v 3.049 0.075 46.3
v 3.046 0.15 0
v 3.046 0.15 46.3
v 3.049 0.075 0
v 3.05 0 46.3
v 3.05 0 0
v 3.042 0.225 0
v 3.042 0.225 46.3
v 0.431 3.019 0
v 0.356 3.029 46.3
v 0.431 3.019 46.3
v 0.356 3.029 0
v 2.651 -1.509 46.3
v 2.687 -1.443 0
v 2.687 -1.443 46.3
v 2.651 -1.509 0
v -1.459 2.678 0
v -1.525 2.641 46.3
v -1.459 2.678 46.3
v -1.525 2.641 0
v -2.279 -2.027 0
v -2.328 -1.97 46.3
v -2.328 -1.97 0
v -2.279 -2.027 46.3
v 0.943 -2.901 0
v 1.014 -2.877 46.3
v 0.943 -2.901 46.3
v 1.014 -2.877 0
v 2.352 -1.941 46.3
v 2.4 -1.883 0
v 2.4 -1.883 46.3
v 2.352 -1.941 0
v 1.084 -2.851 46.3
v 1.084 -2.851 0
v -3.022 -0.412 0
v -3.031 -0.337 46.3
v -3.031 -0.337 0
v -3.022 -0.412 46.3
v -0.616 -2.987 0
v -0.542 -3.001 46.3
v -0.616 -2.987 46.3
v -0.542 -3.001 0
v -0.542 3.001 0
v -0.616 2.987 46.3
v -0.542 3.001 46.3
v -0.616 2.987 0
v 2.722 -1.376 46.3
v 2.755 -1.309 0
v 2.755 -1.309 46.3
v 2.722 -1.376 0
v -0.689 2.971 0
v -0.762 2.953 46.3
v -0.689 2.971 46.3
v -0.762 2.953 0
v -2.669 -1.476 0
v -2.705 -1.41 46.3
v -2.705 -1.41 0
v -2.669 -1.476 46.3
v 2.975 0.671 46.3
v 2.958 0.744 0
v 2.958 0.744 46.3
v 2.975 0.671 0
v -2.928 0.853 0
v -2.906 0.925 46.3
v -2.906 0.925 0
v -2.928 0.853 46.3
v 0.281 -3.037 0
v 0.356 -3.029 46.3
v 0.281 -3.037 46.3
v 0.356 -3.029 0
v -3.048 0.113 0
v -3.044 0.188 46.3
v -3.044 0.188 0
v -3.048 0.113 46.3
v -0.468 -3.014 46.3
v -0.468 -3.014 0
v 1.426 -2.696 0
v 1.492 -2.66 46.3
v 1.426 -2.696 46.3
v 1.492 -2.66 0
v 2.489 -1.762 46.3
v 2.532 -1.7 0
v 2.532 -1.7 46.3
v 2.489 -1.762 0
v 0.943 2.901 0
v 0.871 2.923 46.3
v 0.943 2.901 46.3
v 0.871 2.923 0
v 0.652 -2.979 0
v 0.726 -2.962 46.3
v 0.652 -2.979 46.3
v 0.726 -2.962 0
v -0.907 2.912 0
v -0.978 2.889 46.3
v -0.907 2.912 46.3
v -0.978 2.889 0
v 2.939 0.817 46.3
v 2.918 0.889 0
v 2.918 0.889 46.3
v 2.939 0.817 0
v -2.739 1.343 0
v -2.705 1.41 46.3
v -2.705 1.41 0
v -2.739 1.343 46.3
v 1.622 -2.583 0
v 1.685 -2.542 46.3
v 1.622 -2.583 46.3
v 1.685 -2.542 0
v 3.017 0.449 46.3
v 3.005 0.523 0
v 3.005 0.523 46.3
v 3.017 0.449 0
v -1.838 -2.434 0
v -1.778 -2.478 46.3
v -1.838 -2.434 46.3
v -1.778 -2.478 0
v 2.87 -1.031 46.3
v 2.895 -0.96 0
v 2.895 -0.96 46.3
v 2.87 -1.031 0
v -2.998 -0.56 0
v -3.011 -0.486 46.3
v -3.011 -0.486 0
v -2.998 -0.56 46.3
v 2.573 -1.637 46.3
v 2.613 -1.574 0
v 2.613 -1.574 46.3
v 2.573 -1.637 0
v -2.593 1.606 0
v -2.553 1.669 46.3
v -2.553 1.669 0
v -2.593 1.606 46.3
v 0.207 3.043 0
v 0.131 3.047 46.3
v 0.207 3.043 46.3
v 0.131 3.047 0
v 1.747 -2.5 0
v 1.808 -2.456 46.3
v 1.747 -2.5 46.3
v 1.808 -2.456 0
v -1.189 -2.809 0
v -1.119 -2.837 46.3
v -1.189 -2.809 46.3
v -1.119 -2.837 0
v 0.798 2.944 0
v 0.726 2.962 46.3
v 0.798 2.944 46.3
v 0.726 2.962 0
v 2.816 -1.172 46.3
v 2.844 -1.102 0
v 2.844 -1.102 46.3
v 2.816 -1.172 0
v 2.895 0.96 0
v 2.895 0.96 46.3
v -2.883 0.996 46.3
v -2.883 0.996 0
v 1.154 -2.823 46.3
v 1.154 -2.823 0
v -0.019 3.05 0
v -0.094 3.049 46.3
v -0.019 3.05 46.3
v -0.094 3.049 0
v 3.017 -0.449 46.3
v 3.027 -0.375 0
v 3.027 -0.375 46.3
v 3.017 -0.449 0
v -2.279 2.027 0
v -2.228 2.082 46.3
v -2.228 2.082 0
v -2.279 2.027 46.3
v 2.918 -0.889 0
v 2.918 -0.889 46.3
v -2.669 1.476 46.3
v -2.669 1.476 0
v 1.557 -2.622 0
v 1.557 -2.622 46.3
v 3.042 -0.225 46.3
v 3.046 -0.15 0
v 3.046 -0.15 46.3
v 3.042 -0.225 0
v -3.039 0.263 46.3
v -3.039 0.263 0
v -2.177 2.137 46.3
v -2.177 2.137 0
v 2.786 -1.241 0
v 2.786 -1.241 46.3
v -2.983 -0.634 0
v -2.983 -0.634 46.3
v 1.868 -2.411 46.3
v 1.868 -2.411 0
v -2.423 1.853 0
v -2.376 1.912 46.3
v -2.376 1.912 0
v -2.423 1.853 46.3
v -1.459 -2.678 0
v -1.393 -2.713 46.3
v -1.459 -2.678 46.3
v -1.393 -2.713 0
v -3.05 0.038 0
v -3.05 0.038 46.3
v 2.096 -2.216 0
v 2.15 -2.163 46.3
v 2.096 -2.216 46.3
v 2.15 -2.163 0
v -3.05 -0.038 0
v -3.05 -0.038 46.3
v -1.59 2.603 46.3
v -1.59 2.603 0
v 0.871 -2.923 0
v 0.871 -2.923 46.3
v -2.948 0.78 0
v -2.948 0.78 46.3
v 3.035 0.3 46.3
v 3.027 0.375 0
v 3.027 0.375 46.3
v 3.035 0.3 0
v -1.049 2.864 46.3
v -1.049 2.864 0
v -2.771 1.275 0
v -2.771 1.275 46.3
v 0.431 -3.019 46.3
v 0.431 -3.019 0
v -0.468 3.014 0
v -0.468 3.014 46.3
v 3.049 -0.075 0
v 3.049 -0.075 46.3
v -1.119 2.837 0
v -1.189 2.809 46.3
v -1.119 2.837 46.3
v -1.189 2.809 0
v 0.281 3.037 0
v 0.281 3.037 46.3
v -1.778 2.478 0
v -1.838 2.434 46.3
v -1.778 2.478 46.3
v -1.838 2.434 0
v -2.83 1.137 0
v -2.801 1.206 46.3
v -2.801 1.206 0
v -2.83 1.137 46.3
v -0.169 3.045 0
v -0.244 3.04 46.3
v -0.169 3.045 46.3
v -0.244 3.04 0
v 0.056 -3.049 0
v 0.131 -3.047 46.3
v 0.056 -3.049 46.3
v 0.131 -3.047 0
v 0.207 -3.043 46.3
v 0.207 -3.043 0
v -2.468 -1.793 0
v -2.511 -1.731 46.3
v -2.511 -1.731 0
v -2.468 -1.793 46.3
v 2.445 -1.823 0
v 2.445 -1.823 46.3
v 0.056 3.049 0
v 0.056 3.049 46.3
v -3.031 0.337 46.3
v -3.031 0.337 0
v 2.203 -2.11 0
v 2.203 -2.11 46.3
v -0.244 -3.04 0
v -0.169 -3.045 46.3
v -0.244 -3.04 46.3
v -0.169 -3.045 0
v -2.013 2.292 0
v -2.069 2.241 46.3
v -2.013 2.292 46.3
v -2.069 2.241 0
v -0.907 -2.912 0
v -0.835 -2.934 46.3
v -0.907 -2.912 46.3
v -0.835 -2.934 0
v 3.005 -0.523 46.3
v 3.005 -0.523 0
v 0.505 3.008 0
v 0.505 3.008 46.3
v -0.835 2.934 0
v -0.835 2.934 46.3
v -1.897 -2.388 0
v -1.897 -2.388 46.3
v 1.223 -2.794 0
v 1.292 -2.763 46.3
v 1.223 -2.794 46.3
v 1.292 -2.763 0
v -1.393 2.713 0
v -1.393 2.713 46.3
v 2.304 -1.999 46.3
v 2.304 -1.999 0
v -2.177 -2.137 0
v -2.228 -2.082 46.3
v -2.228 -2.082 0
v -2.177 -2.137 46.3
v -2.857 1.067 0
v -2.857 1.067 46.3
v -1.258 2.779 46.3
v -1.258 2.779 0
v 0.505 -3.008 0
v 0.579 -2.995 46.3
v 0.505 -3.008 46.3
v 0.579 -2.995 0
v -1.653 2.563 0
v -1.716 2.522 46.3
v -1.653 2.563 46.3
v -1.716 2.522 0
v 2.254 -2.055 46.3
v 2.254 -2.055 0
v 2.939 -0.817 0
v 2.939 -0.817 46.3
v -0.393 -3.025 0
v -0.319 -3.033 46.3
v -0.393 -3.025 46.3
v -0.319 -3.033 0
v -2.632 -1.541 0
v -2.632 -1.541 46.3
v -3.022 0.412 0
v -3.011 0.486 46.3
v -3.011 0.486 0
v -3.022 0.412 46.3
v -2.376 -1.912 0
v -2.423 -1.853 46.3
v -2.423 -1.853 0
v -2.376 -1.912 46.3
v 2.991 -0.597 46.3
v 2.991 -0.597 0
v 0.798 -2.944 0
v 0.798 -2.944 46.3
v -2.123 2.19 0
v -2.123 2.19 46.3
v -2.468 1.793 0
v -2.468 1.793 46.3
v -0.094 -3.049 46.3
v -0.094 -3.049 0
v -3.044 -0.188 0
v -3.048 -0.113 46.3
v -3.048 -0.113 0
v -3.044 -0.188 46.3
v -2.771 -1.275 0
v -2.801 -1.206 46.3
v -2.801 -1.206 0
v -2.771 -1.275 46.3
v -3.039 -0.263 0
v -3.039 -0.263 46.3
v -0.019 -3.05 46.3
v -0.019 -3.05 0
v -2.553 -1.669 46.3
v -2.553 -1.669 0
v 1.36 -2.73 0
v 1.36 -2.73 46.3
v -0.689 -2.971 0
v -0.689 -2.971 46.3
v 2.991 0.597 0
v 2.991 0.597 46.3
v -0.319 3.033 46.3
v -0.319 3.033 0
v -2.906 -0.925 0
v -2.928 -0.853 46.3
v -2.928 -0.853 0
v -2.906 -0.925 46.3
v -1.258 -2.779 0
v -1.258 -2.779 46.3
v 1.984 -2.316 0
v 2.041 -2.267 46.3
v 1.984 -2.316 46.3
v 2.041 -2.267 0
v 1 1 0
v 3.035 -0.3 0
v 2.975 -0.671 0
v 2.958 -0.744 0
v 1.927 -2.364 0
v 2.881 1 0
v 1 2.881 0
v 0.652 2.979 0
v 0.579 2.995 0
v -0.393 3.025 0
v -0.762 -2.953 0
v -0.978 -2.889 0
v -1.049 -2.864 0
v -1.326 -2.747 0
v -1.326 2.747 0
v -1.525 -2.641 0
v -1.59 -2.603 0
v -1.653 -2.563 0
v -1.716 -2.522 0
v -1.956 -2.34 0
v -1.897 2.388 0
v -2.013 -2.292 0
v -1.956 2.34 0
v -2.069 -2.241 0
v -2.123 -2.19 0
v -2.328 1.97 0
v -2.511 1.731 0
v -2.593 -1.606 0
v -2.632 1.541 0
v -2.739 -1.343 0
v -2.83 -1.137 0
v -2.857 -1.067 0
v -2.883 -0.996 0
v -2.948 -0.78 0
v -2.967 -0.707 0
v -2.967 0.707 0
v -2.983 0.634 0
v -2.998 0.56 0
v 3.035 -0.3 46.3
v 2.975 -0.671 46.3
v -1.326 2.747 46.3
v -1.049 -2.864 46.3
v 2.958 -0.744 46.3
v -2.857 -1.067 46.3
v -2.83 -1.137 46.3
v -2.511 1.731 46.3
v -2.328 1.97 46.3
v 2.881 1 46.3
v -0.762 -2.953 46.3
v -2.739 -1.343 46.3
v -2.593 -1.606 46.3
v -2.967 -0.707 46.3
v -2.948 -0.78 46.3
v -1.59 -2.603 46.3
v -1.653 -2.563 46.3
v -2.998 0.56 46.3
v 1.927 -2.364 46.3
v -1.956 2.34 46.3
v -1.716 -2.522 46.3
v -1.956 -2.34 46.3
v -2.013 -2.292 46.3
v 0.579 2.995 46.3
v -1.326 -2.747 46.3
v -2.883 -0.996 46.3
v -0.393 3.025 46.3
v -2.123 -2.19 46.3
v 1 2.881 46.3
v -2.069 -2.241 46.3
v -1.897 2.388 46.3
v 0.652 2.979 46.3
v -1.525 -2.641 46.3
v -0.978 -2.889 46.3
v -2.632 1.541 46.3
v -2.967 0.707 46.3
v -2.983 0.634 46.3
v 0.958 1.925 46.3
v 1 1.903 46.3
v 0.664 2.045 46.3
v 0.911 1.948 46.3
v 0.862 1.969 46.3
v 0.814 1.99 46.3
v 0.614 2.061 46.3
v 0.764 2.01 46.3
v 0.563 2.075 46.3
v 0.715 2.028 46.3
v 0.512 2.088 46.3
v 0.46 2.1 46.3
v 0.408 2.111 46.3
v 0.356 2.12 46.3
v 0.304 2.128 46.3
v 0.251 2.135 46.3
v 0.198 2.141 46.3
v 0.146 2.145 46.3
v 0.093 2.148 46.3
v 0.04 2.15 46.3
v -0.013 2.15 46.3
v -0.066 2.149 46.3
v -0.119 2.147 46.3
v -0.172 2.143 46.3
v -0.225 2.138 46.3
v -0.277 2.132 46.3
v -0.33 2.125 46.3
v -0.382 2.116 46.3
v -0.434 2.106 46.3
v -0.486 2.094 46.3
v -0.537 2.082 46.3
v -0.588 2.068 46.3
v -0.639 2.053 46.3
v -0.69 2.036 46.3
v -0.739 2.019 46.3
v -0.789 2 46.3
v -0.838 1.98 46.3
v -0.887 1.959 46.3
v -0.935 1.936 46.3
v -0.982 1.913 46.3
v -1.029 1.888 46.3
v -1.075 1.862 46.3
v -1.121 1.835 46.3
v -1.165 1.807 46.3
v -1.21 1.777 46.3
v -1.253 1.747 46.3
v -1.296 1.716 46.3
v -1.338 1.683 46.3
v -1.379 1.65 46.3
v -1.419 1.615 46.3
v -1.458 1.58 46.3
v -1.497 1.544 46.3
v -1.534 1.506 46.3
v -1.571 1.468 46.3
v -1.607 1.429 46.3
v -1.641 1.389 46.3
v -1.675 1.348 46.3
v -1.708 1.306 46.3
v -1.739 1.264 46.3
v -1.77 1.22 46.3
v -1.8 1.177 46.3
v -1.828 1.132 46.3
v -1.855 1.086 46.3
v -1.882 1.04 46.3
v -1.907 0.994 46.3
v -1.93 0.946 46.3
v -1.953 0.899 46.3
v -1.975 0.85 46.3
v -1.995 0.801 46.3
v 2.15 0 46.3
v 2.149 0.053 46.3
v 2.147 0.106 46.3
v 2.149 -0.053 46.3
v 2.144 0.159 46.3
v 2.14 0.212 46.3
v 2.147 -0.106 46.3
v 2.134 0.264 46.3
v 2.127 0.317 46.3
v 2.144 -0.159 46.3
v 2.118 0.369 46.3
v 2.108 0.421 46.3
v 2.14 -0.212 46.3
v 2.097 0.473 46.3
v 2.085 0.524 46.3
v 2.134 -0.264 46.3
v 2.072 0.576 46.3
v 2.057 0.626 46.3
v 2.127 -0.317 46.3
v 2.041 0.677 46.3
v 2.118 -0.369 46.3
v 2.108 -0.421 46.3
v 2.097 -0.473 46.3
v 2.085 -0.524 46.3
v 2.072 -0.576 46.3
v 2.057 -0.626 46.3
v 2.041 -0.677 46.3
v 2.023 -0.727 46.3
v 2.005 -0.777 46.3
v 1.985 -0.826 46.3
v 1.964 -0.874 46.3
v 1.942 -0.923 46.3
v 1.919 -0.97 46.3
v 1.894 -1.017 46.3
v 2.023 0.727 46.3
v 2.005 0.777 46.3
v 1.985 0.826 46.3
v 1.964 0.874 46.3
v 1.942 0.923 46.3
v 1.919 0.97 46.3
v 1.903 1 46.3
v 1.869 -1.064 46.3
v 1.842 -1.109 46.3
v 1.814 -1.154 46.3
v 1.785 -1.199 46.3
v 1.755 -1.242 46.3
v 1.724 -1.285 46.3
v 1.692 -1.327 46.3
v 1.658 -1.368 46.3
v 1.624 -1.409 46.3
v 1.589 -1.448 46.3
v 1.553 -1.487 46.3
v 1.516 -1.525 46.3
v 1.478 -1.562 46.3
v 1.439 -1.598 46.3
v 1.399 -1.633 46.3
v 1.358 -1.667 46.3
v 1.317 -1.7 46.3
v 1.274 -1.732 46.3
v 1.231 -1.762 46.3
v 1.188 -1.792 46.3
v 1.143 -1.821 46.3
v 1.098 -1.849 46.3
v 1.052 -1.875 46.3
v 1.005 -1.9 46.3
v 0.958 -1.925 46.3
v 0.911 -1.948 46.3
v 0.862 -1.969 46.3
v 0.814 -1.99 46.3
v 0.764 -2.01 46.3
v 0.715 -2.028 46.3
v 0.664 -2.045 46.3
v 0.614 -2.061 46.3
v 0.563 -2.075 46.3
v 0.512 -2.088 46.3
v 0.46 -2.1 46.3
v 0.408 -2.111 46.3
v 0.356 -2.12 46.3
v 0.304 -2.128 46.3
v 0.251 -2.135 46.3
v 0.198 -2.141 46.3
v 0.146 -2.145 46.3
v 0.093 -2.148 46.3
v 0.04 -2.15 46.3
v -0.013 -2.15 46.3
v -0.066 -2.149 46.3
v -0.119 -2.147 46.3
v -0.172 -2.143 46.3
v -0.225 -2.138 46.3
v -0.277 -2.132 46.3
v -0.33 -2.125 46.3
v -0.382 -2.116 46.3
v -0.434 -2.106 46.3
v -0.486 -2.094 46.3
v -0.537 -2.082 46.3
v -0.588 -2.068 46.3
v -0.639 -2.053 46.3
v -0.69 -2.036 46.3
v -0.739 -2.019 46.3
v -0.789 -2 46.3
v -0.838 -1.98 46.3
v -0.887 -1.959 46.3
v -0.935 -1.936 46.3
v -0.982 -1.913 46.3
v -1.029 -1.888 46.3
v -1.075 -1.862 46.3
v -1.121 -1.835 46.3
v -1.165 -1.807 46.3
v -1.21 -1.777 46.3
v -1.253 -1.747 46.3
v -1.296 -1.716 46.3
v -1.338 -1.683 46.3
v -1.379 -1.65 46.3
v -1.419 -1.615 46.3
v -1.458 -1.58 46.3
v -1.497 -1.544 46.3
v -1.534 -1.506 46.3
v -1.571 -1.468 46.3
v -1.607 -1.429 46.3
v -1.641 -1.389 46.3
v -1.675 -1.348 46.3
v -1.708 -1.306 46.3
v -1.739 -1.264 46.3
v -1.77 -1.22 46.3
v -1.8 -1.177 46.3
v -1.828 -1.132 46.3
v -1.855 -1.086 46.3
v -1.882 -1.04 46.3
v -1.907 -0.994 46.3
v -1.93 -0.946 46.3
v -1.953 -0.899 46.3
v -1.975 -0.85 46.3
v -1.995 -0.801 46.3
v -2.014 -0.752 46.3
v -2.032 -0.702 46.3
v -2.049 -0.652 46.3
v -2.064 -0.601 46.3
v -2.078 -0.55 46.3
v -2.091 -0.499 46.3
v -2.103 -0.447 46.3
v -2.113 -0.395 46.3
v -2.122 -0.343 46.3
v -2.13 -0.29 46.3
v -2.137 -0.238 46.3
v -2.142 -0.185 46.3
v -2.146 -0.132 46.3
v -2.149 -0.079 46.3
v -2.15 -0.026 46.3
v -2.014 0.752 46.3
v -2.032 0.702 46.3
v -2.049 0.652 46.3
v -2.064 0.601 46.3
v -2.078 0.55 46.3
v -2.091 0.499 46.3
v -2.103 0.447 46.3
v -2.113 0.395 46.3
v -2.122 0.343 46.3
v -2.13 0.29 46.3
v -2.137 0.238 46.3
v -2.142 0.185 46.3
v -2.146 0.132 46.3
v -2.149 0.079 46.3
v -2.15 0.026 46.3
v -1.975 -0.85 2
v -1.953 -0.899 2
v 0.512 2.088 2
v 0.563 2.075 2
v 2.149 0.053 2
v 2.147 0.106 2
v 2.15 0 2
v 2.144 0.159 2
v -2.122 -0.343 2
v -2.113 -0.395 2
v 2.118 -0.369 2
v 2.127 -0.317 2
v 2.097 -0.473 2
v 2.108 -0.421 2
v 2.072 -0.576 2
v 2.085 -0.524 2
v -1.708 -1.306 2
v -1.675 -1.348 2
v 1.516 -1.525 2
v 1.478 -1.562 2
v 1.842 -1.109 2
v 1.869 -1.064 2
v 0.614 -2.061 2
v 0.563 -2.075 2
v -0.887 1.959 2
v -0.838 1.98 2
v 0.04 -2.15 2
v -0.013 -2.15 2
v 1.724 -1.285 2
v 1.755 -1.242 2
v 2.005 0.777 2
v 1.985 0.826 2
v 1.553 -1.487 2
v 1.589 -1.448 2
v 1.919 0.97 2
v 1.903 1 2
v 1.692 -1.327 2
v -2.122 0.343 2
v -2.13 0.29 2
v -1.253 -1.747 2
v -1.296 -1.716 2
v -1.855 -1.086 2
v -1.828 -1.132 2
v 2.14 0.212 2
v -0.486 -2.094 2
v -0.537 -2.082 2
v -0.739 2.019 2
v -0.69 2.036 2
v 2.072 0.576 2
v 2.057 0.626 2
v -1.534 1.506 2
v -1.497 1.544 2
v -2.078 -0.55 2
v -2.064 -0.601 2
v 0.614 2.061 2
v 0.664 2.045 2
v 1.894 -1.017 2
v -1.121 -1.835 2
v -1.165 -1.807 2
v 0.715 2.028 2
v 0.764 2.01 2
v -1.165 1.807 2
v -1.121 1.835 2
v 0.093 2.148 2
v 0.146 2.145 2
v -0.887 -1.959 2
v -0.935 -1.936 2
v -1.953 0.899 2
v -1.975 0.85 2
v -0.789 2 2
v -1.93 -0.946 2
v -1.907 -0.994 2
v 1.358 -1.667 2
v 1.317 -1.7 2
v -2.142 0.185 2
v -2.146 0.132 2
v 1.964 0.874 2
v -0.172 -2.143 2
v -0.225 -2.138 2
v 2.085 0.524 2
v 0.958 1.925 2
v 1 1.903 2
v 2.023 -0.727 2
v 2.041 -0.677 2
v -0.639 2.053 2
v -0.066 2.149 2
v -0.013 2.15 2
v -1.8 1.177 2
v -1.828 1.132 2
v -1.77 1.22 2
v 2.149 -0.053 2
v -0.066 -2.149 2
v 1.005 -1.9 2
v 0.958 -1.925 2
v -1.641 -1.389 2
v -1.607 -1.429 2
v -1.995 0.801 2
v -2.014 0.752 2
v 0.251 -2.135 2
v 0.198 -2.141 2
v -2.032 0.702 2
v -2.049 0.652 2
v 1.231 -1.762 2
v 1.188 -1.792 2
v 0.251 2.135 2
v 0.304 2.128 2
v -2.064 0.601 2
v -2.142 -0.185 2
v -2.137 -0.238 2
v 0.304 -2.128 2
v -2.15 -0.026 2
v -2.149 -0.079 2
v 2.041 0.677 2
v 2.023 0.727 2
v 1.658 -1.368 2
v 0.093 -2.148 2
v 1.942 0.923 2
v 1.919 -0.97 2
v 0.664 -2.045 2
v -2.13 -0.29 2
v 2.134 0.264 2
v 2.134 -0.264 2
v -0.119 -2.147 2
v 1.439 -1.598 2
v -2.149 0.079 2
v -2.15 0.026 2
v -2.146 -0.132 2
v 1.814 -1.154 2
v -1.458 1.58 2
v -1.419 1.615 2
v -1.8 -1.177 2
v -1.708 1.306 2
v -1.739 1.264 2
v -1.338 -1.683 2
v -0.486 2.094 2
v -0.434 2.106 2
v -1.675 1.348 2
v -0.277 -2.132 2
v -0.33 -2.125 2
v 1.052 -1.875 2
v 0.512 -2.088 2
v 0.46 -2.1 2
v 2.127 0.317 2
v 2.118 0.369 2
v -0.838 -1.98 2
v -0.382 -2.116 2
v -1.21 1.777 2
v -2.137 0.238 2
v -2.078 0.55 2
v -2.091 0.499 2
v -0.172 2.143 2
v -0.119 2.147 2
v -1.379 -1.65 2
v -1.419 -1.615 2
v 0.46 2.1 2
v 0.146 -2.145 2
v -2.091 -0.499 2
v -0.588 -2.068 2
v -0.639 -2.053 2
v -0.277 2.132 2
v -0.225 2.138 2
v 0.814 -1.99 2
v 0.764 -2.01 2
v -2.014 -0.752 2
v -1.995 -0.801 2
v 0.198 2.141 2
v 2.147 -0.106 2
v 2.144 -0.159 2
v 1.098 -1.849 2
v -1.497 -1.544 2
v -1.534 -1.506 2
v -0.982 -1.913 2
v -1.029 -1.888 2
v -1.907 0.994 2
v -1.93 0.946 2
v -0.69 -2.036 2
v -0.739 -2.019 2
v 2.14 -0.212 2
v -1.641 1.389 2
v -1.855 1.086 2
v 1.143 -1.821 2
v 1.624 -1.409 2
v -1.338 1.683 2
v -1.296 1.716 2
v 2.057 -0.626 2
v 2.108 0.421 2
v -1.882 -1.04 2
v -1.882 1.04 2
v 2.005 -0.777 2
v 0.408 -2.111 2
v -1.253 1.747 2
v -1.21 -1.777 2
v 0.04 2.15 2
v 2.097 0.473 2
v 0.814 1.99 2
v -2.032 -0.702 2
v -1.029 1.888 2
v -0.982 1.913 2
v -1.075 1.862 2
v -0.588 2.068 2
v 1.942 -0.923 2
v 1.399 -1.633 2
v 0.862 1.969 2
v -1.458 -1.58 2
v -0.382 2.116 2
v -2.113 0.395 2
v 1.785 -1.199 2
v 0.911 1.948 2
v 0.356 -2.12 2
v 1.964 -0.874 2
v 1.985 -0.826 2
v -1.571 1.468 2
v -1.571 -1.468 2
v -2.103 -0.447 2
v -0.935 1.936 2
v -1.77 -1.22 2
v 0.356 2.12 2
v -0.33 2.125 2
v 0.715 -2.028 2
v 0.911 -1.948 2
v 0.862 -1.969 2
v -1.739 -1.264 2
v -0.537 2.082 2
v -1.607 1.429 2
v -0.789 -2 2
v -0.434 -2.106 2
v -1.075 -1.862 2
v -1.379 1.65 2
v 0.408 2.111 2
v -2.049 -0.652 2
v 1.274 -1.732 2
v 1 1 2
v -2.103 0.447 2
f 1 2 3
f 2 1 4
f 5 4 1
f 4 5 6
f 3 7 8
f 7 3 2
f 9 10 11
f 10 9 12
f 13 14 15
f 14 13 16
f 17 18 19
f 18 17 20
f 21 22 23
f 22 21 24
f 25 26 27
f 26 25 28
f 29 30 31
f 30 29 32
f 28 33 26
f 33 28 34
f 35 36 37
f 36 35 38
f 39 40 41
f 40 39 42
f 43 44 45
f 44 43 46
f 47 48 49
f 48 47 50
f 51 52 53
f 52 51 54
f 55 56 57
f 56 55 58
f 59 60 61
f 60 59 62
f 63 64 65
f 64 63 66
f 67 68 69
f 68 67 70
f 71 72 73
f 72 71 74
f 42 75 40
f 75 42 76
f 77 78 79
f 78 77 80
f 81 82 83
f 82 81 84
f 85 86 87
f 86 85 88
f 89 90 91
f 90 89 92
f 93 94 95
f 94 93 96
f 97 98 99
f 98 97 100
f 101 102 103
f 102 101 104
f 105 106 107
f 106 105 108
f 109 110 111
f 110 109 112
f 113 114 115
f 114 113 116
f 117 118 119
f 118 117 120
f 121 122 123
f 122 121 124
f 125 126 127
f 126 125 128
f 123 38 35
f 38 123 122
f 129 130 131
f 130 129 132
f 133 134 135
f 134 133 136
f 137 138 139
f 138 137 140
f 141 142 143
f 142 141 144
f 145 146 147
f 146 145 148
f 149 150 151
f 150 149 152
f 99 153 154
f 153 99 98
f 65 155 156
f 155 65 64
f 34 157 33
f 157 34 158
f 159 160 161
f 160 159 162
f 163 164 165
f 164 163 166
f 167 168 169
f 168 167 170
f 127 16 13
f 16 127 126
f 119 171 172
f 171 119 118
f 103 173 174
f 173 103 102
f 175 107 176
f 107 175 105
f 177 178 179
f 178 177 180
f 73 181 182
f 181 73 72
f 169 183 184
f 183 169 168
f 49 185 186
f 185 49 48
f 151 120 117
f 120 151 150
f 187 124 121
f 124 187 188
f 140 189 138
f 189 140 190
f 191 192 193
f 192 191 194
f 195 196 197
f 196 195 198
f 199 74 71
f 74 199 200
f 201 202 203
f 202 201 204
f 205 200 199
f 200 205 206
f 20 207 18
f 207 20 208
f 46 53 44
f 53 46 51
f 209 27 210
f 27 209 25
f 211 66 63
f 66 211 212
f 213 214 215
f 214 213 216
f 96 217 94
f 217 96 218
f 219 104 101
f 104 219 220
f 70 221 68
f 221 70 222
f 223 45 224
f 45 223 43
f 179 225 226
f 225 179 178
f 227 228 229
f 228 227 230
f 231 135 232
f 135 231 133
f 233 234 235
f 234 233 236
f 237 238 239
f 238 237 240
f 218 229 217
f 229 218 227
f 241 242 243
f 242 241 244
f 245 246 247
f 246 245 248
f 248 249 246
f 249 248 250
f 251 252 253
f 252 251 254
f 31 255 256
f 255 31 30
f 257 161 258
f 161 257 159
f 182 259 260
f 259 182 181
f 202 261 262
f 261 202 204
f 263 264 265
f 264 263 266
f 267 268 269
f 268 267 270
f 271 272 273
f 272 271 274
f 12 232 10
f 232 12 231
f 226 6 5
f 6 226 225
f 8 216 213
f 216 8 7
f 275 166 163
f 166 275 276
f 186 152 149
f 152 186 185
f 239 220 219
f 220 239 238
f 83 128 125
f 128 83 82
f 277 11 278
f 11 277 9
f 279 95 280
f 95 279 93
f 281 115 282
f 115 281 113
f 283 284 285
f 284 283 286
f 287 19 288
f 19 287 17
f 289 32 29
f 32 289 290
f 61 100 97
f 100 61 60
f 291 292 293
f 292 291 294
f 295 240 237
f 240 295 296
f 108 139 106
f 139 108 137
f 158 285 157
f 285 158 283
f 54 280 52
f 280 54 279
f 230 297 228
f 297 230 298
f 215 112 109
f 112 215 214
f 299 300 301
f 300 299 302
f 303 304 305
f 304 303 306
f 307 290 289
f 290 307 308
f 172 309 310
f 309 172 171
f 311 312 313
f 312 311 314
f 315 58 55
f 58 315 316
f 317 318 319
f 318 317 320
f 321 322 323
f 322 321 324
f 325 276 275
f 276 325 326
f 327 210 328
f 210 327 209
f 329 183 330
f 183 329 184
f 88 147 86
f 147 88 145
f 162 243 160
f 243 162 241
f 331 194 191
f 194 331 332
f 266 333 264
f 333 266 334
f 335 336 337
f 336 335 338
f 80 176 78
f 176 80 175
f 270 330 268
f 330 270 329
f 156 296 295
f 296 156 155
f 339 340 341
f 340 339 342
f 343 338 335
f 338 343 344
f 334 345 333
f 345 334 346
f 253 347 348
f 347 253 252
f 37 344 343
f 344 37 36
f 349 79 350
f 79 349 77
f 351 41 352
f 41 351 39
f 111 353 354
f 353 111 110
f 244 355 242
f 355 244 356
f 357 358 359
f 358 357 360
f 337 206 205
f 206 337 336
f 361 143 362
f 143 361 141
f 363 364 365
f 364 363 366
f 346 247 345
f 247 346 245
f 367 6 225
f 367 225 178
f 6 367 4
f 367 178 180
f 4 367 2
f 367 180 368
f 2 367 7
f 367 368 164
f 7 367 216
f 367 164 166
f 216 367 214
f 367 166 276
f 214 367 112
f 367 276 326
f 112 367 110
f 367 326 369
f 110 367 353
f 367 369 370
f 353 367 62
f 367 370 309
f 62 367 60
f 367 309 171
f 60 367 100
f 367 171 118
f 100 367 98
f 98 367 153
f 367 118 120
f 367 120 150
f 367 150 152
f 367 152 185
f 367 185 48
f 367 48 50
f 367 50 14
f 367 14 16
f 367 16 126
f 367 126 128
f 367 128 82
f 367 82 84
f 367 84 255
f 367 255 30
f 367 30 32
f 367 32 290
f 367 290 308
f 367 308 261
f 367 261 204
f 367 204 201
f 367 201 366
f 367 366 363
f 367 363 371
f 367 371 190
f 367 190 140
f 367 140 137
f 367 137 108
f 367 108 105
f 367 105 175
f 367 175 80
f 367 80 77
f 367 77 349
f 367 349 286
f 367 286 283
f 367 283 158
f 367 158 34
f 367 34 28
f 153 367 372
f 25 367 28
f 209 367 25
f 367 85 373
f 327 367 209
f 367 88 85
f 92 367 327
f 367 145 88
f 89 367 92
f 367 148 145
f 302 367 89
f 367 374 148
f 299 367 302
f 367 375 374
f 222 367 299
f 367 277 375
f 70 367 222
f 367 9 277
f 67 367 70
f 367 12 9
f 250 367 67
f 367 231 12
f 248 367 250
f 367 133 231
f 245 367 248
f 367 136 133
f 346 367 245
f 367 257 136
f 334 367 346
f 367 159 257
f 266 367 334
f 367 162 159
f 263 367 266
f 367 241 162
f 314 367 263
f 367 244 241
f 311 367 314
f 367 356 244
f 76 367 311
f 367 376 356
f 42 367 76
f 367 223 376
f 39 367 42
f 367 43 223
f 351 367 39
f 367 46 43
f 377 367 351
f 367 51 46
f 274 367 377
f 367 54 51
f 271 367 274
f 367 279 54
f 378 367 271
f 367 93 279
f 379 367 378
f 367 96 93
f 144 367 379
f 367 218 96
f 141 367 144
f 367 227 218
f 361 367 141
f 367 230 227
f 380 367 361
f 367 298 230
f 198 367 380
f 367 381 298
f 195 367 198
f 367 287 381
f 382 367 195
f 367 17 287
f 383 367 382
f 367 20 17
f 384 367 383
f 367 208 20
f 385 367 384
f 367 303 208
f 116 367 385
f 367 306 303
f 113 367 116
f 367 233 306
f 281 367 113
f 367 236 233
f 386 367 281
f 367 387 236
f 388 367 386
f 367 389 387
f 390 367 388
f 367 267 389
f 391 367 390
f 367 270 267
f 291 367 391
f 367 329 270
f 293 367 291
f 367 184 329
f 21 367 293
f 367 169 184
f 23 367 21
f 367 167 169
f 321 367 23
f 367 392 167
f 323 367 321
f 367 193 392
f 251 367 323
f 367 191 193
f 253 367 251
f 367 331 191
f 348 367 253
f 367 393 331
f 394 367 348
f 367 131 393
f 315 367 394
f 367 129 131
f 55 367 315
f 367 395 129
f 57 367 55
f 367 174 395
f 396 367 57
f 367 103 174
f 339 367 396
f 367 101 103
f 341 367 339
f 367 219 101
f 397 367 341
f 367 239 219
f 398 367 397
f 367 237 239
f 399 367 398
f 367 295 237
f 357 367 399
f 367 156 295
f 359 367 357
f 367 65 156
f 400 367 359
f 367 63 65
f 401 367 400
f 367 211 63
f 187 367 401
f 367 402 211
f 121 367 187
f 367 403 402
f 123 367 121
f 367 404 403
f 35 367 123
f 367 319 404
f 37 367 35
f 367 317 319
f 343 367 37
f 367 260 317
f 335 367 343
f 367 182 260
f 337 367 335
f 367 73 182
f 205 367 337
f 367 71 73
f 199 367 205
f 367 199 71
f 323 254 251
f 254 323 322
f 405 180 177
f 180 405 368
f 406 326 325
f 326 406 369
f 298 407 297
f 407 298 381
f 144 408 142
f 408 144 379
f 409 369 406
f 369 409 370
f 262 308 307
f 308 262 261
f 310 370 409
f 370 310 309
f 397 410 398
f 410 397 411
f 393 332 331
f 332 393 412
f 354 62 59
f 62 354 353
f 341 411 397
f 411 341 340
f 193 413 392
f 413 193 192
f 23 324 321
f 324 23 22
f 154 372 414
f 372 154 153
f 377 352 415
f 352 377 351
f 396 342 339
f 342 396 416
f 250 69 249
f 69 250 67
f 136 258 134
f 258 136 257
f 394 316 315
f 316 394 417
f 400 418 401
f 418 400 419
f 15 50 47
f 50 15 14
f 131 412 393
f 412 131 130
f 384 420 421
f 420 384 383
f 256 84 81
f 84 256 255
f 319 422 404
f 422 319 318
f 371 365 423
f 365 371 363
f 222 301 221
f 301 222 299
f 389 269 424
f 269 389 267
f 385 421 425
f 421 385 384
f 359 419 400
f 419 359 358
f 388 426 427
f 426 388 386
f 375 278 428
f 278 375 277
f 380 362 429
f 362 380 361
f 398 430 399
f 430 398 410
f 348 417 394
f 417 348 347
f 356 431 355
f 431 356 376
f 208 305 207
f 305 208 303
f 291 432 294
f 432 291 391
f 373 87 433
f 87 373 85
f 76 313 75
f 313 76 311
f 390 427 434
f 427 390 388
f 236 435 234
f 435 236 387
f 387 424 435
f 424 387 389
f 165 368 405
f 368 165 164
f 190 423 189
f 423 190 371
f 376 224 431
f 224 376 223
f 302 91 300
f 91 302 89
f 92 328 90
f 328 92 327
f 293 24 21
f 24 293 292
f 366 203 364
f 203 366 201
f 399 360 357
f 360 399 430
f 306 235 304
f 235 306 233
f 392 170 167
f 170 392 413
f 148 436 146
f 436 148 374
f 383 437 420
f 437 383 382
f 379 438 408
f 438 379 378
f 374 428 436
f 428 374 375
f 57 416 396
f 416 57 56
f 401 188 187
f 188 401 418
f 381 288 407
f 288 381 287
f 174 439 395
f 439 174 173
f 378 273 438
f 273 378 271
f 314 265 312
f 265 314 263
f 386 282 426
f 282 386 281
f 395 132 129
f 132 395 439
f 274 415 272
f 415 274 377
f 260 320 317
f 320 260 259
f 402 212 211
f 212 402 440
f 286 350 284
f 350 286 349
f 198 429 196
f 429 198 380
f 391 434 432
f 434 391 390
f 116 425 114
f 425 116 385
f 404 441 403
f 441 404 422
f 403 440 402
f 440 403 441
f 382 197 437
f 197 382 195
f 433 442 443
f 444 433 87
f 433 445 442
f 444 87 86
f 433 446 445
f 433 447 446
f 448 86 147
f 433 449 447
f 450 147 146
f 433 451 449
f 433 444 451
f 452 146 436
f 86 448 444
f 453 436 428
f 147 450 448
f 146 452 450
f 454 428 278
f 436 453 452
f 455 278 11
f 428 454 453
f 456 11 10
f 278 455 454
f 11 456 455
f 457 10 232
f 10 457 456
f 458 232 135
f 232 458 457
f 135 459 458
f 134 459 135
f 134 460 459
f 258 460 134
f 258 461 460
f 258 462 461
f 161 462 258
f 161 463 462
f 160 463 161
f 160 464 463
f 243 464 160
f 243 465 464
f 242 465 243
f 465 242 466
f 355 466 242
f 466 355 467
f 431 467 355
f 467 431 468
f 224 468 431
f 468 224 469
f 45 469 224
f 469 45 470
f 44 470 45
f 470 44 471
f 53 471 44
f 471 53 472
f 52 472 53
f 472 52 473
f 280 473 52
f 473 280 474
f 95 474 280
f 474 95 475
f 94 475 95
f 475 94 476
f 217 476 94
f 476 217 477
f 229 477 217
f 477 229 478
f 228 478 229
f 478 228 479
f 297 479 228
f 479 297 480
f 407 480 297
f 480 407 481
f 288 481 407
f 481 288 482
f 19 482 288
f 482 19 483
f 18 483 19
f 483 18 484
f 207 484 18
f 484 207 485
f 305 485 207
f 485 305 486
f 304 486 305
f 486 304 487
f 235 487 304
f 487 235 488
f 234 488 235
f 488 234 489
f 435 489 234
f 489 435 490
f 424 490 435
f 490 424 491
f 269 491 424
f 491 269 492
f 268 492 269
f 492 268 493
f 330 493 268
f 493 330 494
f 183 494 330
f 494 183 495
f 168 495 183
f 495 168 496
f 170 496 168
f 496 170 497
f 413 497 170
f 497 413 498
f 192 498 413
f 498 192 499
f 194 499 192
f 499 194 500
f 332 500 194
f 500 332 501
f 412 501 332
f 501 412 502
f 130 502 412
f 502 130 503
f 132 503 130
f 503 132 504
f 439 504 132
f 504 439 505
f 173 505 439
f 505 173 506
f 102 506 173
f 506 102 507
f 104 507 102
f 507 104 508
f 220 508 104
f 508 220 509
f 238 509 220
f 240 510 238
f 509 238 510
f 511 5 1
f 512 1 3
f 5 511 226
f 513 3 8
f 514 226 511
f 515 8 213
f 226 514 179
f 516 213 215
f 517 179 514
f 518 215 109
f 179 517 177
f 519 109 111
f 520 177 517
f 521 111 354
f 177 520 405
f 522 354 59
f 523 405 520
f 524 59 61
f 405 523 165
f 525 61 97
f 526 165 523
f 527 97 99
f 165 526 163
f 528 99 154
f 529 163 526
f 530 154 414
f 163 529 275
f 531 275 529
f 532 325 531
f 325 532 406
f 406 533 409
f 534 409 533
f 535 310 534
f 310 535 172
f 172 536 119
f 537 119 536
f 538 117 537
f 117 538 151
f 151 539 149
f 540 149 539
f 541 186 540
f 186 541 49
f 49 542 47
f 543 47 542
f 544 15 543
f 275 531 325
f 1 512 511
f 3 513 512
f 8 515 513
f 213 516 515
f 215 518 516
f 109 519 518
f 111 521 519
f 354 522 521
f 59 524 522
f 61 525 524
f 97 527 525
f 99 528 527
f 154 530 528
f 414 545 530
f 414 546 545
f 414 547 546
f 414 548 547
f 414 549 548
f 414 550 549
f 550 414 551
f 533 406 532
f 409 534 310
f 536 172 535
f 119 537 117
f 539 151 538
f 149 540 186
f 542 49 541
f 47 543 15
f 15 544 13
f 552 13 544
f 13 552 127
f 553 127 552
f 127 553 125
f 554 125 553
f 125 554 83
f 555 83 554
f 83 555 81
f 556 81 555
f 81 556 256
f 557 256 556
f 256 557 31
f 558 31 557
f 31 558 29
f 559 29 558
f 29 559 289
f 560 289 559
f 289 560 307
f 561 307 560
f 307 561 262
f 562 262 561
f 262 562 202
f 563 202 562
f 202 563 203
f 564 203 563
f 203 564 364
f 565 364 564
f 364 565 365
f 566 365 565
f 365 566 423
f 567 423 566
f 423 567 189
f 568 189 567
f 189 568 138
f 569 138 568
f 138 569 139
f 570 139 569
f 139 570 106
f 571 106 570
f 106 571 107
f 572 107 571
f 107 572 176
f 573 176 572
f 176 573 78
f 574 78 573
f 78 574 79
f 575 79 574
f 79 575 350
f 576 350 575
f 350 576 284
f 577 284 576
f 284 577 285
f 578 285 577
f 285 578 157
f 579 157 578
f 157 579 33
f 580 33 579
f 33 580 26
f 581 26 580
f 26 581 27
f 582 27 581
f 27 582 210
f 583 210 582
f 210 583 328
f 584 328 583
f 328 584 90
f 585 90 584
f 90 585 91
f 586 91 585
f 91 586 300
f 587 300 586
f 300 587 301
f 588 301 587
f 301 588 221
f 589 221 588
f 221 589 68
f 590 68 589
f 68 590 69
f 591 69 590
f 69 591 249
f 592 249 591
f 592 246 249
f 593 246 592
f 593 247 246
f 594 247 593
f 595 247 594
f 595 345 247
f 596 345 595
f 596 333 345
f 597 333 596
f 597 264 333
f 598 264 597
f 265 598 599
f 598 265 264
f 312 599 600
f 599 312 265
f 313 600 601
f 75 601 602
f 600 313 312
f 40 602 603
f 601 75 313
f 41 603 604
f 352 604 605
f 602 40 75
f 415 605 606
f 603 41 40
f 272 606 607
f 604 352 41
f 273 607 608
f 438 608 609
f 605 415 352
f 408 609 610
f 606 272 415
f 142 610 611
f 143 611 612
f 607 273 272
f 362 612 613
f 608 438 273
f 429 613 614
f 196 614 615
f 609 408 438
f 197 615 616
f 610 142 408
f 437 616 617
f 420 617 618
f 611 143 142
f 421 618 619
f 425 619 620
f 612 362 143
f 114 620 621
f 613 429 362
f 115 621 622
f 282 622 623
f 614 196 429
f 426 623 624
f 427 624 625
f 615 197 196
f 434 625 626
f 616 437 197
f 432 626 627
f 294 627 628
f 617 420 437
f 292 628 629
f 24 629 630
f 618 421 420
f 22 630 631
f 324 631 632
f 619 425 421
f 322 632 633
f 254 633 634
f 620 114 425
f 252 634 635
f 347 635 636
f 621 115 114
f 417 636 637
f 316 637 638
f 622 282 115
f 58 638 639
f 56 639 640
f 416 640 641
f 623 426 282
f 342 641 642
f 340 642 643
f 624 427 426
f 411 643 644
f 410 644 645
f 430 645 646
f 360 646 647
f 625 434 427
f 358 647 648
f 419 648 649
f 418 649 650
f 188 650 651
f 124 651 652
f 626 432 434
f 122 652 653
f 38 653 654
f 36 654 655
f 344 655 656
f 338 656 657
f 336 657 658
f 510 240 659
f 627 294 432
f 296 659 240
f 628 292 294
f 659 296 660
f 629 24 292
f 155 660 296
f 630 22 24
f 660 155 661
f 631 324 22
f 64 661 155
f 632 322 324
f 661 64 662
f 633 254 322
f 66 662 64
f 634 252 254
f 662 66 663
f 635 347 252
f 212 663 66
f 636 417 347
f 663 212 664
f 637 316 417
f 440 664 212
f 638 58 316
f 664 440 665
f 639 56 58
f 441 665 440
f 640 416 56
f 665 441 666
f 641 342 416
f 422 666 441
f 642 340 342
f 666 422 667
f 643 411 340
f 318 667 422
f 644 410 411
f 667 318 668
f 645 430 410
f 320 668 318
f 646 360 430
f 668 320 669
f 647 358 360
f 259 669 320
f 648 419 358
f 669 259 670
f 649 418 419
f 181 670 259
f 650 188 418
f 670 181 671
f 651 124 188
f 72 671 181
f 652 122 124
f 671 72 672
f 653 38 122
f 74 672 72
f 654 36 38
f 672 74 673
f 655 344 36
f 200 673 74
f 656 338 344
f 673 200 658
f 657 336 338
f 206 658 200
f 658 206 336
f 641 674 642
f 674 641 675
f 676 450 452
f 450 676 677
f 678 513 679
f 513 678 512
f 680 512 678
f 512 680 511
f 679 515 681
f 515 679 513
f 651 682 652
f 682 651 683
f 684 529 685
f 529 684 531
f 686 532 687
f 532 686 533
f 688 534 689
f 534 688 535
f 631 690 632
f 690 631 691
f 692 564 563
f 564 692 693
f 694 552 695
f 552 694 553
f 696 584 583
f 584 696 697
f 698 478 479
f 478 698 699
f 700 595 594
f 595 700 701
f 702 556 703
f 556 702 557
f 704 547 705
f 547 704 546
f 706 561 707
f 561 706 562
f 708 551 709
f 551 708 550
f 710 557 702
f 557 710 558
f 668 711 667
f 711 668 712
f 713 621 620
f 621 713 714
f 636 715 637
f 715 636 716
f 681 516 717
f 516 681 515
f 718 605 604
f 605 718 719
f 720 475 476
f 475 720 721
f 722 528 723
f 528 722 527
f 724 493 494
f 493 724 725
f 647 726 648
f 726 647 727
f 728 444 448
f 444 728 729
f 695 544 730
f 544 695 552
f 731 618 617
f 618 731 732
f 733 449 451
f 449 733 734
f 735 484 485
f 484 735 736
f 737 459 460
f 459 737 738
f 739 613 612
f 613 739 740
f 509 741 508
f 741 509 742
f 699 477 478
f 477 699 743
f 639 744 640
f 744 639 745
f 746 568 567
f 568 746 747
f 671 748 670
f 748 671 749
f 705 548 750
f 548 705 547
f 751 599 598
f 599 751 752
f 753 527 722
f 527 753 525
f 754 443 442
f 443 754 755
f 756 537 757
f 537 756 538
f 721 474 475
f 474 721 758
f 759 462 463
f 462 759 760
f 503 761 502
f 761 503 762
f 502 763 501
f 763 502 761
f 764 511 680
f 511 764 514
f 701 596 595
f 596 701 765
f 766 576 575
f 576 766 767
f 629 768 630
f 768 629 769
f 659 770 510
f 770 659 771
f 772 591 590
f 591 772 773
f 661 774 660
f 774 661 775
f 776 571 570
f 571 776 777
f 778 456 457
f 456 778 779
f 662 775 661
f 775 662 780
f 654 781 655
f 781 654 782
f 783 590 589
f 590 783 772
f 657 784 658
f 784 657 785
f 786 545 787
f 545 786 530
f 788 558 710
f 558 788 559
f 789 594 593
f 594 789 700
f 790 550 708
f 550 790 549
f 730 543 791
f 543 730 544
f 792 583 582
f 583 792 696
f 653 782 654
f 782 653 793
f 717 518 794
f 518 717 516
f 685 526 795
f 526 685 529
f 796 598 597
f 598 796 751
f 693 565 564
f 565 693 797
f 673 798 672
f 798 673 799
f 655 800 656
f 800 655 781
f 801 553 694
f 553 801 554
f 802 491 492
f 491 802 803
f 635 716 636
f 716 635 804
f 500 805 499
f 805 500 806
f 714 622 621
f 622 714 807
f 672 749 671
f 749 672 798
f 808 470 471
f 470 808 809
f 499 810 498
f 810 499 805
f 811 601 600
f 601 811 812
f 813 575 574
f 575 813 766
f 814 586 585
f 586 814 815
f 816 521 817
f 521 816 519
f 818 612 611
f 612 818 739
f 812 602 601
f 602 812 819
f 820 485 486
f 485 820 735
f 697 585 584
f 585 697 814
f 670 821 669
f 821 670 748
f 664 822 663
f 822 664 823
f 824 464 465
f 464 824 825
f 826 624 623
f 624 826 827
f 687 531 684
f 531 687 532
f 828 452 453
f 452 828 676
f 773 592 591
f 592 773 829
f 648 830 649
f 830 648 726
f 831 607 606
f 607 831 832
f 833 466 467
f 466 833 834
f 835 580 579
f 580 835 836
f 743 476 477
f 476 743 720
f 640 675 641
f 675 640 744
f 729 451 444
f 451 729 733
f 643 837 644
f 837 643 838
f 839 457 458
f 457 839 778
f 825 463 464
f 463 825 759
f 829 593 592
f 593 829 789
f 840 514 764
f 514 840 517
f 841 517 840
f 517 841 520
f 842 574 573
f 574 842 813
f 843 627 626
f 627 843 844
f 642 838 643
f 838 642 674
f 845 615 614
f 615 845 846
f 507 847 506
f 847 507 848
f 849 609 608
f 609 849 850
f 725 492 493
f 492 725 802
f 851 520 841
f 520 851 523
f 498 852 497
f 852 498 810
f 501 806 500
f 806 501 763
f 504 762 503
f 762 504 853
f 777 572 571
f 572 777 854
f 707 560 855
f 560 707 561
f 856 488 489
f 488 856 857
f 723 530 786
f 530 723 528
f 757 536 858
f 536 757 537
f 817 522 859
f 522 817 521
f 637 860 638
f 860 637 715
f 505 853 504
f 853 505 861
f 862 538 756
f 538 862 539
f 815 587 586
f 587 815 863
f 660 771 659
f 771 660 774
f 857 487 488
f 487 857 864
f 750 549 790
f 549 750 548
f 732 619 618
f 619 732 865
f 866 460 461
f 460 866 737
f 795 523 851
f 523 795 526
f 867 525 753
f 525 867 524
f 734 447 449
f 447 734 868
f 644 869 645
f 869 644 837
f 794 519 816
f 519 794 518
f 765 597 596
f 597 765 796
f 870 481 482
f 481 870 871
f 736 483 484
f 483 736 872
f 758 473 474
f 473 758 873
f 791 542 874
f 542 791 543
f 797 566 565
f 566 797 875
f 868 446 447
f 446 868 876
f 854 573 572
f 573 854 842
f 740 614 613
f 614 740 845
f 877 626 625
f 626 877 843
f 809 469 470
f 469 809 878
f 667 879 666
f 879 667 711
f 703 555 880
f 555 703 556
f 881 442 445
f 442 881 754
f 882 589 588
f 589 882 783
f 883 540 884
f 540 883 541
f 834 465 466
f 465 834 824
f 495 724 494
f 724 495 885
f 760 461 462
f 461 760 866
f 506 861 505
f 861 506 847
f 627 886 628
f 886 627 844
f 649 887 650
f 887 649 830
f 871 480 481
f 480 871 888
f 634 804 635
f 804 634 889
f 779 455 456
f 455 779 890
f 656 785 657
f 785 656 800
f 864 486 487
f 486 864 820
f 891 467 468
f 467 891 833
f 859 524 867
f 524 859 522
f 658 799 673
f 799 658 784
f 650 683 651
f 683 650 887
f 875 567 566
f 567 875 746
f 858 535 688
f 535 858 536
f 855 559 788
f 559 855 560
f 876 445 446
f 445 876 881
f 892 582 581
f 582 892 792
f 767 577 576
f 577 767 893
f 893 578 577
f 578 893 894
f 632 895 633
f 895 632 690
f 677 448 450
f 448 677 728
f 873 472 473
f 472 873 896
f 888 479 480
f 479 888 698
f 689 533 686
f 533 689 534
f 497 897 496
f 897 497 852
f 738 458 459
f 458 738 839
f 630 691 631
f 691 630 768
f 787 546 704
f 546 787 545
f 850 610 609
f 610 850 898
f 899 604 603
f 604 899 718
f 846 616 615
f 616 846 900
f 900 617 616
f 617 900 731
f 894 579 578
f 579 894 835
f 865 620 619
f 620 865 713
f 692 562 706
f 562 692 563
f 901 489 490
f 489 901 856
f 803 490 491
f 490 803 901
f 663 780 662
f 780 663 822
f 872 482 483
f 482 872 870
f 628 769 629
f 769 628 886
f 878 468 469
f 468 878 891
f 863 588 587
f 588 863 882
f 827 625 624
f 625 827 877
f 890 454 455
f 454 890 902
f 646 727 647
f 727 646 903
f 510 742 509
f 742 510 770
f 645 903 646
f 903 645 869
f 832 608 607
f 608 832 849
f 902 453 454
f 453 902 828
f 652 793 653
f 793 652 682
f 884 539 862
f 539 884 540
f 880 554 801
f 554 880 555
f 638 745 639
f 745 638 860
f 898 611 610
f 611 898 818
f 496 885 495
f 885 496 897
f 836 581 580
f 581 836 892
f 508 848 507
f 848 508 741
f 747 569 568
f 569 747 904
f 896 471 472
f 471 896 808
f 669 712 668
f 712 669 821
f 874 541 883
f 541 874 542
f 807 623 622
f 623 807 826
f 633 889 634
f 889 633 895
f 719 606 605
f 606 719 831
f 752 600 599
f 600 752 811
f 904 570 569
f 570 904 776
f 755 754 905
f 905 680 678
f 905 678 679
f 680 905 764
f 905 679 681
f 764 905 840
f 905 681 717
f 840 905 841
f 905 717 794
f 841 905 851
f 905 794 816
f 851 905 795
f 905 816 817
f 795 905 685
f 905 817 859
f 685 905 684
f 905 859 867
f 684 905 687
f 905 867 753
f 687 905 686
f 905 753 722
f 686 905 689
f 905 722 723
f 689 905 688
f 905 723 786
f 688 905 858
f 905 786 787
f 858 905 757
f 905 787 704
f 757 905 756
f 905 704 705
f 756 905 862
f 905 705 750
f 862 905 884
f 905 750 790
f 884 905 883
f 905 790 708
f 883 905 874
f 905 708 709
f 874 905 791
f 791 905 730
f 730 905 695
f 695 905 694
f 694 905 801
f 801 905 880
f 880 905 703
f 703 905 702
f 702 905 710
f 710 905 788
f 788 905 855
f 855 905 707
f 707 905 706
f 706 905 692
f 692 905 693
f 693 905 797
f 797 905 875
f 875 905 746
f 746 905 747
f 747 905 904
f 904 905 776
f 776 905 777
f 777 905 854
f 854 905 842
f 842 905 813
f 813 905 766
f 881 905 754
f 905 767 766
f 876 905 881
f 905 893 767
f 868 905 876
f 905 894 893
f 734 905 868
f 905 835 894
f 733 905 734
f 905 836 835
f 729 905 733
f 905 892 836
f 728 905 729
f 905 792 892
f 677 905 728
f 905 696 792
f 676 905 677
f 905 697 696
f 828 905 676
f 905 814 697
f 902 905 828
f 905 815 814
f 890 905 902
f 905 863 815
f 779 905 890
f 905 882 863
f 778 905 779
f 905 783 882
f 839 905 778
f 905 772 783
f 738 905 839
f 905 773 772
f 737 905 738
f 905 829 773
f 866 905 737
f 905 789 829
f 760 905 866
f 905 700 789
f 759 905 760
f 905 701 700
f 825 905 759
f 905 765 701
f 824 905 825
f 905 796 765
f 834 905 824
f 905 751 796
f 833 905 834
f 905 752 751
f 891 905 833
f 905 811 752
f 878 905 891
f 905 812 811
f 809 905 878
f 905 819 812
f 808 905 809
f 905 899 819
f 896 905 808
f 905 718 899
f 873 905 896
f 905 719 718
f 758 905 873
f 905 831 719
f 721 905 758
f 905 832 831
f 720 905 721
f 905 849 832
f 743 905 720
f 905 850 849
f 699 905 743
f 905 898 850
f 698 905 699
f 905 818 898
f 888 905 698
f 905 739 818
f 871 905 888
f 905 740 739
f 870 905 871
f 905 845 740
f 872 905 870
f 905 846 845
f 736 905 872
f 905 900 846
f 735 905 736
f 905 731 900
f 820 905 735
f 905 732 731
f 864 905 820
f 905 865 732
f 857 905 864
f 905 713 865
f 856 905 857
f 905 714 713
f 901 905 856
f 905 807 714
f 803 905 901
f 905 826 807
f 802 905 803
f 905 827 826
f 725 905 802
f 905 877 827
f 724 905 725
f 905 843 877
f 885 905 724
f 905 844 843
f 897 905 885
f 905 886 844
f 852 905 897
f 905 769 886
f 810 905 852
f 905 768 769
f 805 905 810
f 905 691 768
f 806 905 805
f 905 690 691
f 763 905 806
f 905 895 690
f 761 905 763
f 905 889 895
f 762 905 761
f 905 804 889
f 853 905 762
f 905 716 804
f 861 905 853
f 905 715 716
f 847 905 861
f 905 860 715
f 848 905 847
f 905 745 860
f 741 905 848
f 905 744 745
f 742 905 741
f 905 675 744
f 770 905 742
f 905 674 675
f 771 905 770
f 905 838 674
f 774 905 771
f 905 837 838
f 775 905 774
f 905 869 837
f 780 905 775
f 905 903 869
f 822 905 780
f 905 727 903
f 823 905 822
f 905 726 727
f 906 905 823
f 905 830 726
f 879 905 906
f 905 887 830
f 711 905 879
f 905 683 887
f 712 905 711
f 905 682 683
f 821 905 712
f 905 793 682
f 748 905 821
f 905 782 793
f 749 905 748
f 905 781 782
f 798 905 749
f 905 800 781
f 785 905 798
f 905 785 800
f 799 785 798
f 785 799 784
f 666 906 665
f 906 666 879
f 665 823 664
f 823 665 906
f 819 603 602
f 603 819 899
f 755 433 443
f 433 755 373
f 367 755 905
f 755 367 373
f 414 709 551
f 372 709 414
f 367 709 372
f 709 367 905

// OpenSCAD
$fn = 255;

inner_diameter = 4.3;
outer_diameter = 6.1;
base_height = 2;
tube_height = 44.3;

difference() {
    union() {
        cylinder(d=outer_diameter, h=base_height);
        translate([0, 0, base_height]) cylinder(d=outer_diameter, h=tube_height);
    }
    translate([0, 0, base_height]) cylinder(d=inner_diameter, h=tube_height);
    translate([1, 1, 0]) cube([10, 10, base_height + tube_height]);
}
